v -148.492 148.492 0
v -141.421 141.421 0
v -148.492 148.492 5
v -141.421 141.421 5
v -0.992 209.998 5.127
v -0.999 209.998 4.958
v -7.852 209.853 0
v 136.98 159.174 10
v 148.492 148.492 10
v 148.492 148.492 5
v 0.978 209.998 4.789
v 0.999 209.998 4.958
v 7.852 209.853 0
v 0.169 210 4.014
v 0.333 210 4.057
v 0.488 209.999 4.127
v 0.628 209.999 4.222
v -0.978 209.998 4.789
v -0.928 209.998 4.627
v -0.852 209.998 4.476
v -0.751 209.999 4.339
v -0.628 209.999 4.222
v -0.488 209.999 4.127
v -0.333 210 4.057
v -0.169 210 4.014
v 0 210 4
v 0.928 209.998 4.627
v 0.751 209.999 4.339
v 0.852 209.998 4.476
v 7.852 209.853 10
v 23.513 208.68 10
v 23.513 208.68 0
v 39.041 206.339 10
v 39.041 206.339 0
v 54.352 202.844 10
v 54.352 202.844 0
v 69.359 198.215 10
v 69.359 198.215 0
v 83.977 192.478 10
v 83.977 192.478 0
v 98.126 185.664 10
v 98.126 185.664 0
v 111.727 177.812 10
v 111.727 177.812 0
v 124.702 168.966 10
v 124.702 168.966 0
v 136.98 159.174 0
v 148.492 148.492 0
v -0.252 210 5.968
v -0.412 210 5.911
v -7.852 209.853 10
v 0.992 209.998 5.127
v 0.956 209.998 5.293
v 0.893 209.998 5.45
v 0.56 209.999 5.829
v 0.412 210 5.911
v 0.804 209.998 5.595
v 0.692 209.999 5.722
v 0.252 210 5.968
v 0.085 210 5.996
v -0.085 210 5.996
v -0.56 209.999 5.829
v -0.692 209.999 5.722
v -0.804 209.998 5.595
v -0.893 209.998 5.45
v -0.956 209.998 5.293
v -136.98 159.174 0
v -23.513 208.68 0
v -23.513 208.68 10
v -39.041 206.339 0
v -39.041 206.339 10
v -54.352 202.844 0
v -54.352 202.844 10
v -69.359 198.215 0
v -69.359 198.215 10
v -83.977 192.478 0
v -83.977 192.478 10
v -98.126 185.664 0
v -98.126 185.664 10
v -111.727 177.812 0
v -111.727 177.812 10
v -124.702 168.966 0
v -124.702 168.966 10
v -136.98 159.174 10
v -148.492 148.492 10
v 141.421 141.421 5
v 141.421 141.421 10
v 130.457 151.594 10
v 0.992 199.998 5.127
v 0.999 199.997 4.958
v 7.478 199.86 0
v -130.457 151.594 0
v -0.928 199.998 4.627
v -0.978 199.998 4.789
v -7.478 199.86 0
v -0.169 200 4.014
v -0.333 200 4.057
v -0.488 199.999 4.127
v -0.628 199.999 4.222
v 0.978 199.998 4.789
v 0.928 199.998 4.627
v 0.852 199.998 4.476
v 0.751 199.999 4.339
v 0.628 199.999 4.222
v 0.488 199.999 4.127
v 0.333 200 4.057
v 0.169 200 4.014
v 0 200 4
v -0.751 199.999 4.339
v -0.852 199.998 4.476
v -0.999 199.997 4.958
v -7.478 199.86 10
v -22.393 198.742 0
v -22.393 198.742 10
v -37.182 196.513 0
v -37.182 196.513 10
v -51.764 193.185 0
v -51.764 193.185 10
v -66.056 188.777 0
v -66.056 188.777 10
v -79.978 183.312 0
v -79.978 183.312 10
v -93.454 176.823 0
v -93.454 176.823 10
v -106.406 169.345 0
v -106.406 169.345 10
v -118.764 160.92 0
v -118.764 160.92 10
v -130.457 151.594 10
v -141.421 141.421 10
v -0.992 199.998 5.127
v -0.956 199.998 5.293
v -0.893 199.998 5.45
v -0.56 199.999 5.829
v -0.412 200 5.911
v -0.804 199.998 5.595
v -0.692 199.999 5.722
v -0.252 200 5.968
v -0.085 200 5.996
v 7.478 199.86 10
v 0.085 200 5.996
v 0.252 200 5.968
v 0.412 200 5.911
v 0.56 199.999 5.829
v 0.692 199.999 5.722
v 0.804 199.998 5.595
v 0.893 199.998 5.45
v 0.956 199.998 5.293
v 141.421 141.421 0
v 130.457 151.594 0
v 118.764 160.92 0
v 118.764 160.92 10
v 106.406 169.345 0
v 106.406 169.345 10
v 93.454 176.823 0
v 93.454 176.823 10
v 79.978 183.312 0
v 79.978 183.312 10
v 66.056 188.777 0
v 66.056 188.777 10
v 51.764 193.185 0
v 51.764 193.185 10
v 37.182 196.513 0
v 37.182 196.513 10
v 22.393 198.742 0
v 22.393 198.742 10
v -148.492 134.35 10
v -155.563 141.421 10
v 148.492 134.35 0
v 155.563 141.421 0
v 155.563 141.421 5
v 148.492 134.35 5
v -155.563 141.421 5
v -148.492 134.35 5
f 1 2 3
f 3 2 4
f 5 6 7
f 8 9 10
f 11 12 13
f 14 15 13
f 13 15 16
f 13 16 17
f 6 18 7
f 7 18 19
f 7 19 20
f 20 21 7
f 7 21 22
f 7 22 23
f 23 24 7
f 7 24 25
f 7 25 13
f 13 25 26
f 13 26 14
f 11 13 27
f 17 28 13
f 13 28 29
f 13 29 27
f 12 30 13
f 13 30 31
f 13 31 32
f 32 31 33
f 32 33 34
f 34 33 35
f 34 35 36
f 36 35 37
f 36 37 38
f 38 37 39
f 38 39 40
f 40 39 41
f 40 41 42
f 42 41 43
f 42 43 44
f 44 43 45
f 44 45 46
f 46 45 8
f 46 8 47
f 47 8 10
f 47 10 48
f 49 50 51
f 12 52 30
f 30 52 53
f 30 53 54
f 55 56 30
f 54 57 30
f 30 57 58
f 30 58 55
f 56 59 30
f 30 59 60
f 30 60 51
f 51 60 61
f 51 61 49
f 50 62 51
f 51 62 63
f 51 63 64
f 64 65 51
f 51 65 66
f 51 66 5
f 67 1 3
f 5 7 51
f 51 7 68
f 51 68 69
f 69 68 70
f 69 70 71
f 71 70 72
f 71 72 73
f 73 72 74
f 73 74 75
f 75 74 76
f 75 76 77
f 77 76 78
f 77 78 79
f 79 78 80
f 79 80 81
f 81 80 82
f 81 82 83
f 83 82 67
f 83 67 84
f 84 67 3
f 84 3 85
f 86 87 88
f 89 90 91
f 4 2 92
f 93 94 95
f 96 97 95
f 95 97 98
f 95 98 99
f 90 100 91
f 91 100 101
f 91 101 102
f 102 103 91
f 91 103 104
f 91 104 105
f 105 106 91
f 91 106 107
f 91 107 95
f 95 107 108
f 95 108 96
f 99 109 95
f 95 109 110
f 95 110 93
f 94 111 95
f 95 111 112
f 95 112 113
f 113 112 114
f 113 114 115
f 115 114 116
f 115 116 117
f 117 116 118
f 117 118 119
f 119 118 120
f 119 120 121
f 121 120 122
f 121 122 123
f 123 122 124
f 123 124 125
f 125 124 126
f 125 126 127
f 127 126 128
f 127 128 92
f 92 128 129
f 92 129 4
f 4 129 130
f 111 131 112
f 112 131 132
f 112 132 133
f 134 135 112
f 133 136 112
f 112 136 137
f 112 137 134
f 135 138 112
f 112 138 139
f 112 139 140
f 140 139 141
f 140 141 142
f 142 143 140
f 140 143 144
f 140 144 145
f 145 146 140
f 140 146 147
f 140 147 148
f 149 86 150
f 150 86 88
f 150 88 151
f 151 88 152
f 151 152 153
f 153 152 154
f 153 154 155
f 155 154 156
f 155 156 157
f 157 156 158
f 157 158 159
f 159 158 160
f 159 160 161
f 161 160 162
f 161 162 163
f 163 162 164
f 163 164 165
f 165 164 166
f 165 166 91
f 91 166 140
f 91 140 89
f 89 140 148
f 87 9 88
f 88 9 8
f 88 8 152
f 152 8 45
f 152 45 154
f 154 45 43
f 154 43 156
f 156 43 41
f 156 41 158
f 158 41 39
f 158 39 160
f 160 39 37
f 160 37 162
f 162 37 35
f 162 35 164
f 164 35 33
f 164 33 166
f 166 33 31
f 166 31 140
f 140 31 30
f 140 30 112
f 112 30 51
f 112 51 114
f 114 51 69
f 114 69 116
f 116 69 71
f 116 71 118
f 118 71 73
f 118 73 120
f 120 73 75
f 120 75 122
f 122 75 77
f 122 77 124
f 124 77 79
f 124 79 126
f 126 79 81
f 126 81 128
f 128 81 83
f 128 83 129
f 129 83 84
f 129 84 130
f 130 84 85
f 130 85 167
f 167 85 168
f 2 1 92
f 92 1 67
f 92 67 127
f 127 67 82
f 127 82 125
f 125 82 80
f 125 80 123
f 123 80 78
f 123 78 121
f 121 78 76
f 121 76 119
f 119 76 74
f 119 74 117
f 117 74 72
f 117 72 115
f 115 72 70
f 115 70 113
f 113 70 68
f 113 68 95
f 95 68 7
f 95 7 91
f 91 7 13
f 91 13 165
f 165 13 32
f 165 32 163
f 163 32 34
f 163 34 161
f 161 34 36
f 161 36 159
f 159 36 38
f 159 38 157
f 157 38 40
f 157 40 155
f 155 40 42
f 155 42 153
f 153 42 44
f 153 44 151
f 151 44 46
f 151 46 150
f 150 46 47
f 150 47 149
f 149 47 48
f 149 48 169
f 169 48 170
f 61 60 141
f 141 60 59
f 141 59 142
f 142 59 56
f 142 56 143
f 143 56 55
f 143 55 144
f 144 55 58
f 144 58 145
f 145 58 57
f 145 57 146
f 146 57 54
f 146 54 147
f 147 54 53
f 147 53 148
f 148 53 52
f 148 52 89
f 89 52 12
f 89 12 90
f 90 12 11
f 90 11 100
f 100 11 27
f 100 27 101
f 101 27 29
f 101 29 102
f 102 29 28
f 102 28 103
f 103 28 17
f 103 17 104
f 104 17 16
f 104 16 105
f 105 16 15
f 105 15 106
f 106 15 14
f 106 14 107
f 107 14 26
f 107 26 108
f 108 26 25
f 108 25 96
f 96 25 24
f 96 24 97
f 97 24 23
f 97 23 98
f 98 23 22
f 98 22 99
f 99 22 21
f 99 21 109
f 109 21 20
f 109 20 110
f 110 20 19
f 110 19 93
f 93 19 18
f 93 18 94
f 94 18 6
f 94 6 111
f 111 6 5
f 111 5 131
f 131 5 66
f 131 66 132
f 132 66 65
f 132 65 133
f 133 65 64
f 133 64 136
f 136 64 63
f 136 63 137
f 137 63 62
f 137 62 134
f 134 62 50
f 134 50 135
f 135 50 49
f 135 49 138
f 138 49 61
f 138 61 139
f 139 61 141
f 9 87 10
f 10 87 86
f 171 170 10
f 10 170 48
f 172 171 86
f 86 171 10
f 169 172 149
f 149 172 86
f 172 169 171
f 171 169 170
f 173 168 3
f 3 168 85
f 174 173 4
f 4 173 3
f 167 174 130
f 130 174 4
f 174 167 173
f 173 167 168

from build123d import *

# Parameters (mm, degrees)
IZIM1_R                     = 210
IZIM1_R_2                   = 200
Y_KSEKLIK_EKSTR_ZYON1_DEPTH = 10
KES_EKSTR_ZYON1_DEPTH       = 290
KES_EKSTR_ZYON1_DEPTH_BACK  = 290
IZIM3_R                     = 1
KES_EKSTR_ZYON2_DEPTH       = 290
KES_EKSTR_ZYON2_DEPTH_BACK  = 290
IZIM4_R                     = 1
KES_EKSTR_ZYON8_DEPTH       = 184
KES_EKSTR_ZYON8_DEPTH_BACK  = 455
IZIM6_W                     = 5
IZIM6_H                     = 10
Y_KSEKLIK_EKSTR_ZYON2_DEPTH = 10
IZIM7_W                     = 5
IZIM7_H                     = 10
Y_KSEKLIK_EKSTR_ZYON4_DEPTH = 10


with BuildPart() as part:
    # Çizim1 → Yükseklik-Ekstrüzyon1 (new body)
    with BuildSketch(Plane.XY):
        Circle(IZIM1_R)
        Circle(IZIM1_R_2, mode=Mode.SUBTRACT)
    extrude(amount=Y_KSEKLIK_EKSTR_ZYON1_DEPTH)

    # Çizim3 → Kes-Ekstrüzyon1 (cut, two sides: drawn at the far end of the back side and taken through both)
    with BuildSketch(Plane(origin=(0, 0, 0), x_dir=(1, 0, 0), z_dir=(0, 1, 0)).offset(-KES_EKSTR_ZYON1_DEPTH_BACK)):
        with Locations((0, -5)):
            Circle(IZIM3_R)
    extrude(amount=KES_EKSTR_ZYON1_DEPTH + KES_EKSTR_ZYON1_DEPTH_BACK, mode=Mode.SUBTRACT)

    # Çizim4 → Kes-Ekstrüzyon2 (cut, two sides: drawn at the far end of the back side and taken through both)
    with BuildSketch(Plane(origin=(0, 0, 0), x_dir=(0, 0, -1), z_dir=(1, 0, 0)).offset(-KES_EKSTR_ZYON2_DEPTH_BACK)):
        with Locations((-5, 0)):
            Circle(IZIM4_R)
    extrude(amount=KES_EKSTR_ZYON2_DEPTH + KES_EKSTR_ZYON2_DEPTH_BACK, mode=Mode.SUBTRACT)

    # Çizim5 → Kes-Ekstrüzyon8 (cut, two sides: drawn at the far end of the back side and taken through both)
    with BuildSketch(Plane.XY.offset(-KES_EKSTR_ZYON8_DEPTH_BACK)):
        with BuildLine():
            Line((-141.421356237, 141.421356237), (-148.492424049, 148.492424049))
            ThreePointArc((-148.492424049, 148.492424049), (0, -210), (148.492424049, 148.492424049))
            Line((148.492424049, 148.492424049), (141.421356237, 141.421356237))
            ThreePointArc((141.421356237, 141.421356237), (0, -200), (-141.421356237, 141.421356237))
        make_face()
    extrude(amount=KES_EKSTR_ZYON8_DEPTH + KES_EKSTR_ZYON8_DEPTH_BACK, mode=Mode.SUBTRACT)

    # Çizim6 → Yükseklik-Ekstrüzyon2 (add)
    with BuildSketch(Plane(origin=(0, 0, 0), x_dir=(0, 0, -1), z_dir=(0.7071067811865477, -0.7071067811865475, 0))):
        with Locations((-2.5, 205)):
            Rectangle(IZIM6_W, IZIM6_H)
    extrude(amount=Y_KSEKLIK_EKSTR_ZYON2_DEPTH)

    # Çizim7 → Yükseklik-Ekstrüzyon4 (add)
    with BuildSketch(Plane(origin=(0, 0, 0), x_dir=(0, 0, 1), z_dir=(-0.7071067811865477, -0.7071067811865475, 0))):
        with Locations((7.5, 205)):
            Rectangle(IZIM7_W, IZIM7_H)
    extrude(amount=Y_KSEKLIK_EKSTR_ZYON4_DEPTH)


solid = part.part
